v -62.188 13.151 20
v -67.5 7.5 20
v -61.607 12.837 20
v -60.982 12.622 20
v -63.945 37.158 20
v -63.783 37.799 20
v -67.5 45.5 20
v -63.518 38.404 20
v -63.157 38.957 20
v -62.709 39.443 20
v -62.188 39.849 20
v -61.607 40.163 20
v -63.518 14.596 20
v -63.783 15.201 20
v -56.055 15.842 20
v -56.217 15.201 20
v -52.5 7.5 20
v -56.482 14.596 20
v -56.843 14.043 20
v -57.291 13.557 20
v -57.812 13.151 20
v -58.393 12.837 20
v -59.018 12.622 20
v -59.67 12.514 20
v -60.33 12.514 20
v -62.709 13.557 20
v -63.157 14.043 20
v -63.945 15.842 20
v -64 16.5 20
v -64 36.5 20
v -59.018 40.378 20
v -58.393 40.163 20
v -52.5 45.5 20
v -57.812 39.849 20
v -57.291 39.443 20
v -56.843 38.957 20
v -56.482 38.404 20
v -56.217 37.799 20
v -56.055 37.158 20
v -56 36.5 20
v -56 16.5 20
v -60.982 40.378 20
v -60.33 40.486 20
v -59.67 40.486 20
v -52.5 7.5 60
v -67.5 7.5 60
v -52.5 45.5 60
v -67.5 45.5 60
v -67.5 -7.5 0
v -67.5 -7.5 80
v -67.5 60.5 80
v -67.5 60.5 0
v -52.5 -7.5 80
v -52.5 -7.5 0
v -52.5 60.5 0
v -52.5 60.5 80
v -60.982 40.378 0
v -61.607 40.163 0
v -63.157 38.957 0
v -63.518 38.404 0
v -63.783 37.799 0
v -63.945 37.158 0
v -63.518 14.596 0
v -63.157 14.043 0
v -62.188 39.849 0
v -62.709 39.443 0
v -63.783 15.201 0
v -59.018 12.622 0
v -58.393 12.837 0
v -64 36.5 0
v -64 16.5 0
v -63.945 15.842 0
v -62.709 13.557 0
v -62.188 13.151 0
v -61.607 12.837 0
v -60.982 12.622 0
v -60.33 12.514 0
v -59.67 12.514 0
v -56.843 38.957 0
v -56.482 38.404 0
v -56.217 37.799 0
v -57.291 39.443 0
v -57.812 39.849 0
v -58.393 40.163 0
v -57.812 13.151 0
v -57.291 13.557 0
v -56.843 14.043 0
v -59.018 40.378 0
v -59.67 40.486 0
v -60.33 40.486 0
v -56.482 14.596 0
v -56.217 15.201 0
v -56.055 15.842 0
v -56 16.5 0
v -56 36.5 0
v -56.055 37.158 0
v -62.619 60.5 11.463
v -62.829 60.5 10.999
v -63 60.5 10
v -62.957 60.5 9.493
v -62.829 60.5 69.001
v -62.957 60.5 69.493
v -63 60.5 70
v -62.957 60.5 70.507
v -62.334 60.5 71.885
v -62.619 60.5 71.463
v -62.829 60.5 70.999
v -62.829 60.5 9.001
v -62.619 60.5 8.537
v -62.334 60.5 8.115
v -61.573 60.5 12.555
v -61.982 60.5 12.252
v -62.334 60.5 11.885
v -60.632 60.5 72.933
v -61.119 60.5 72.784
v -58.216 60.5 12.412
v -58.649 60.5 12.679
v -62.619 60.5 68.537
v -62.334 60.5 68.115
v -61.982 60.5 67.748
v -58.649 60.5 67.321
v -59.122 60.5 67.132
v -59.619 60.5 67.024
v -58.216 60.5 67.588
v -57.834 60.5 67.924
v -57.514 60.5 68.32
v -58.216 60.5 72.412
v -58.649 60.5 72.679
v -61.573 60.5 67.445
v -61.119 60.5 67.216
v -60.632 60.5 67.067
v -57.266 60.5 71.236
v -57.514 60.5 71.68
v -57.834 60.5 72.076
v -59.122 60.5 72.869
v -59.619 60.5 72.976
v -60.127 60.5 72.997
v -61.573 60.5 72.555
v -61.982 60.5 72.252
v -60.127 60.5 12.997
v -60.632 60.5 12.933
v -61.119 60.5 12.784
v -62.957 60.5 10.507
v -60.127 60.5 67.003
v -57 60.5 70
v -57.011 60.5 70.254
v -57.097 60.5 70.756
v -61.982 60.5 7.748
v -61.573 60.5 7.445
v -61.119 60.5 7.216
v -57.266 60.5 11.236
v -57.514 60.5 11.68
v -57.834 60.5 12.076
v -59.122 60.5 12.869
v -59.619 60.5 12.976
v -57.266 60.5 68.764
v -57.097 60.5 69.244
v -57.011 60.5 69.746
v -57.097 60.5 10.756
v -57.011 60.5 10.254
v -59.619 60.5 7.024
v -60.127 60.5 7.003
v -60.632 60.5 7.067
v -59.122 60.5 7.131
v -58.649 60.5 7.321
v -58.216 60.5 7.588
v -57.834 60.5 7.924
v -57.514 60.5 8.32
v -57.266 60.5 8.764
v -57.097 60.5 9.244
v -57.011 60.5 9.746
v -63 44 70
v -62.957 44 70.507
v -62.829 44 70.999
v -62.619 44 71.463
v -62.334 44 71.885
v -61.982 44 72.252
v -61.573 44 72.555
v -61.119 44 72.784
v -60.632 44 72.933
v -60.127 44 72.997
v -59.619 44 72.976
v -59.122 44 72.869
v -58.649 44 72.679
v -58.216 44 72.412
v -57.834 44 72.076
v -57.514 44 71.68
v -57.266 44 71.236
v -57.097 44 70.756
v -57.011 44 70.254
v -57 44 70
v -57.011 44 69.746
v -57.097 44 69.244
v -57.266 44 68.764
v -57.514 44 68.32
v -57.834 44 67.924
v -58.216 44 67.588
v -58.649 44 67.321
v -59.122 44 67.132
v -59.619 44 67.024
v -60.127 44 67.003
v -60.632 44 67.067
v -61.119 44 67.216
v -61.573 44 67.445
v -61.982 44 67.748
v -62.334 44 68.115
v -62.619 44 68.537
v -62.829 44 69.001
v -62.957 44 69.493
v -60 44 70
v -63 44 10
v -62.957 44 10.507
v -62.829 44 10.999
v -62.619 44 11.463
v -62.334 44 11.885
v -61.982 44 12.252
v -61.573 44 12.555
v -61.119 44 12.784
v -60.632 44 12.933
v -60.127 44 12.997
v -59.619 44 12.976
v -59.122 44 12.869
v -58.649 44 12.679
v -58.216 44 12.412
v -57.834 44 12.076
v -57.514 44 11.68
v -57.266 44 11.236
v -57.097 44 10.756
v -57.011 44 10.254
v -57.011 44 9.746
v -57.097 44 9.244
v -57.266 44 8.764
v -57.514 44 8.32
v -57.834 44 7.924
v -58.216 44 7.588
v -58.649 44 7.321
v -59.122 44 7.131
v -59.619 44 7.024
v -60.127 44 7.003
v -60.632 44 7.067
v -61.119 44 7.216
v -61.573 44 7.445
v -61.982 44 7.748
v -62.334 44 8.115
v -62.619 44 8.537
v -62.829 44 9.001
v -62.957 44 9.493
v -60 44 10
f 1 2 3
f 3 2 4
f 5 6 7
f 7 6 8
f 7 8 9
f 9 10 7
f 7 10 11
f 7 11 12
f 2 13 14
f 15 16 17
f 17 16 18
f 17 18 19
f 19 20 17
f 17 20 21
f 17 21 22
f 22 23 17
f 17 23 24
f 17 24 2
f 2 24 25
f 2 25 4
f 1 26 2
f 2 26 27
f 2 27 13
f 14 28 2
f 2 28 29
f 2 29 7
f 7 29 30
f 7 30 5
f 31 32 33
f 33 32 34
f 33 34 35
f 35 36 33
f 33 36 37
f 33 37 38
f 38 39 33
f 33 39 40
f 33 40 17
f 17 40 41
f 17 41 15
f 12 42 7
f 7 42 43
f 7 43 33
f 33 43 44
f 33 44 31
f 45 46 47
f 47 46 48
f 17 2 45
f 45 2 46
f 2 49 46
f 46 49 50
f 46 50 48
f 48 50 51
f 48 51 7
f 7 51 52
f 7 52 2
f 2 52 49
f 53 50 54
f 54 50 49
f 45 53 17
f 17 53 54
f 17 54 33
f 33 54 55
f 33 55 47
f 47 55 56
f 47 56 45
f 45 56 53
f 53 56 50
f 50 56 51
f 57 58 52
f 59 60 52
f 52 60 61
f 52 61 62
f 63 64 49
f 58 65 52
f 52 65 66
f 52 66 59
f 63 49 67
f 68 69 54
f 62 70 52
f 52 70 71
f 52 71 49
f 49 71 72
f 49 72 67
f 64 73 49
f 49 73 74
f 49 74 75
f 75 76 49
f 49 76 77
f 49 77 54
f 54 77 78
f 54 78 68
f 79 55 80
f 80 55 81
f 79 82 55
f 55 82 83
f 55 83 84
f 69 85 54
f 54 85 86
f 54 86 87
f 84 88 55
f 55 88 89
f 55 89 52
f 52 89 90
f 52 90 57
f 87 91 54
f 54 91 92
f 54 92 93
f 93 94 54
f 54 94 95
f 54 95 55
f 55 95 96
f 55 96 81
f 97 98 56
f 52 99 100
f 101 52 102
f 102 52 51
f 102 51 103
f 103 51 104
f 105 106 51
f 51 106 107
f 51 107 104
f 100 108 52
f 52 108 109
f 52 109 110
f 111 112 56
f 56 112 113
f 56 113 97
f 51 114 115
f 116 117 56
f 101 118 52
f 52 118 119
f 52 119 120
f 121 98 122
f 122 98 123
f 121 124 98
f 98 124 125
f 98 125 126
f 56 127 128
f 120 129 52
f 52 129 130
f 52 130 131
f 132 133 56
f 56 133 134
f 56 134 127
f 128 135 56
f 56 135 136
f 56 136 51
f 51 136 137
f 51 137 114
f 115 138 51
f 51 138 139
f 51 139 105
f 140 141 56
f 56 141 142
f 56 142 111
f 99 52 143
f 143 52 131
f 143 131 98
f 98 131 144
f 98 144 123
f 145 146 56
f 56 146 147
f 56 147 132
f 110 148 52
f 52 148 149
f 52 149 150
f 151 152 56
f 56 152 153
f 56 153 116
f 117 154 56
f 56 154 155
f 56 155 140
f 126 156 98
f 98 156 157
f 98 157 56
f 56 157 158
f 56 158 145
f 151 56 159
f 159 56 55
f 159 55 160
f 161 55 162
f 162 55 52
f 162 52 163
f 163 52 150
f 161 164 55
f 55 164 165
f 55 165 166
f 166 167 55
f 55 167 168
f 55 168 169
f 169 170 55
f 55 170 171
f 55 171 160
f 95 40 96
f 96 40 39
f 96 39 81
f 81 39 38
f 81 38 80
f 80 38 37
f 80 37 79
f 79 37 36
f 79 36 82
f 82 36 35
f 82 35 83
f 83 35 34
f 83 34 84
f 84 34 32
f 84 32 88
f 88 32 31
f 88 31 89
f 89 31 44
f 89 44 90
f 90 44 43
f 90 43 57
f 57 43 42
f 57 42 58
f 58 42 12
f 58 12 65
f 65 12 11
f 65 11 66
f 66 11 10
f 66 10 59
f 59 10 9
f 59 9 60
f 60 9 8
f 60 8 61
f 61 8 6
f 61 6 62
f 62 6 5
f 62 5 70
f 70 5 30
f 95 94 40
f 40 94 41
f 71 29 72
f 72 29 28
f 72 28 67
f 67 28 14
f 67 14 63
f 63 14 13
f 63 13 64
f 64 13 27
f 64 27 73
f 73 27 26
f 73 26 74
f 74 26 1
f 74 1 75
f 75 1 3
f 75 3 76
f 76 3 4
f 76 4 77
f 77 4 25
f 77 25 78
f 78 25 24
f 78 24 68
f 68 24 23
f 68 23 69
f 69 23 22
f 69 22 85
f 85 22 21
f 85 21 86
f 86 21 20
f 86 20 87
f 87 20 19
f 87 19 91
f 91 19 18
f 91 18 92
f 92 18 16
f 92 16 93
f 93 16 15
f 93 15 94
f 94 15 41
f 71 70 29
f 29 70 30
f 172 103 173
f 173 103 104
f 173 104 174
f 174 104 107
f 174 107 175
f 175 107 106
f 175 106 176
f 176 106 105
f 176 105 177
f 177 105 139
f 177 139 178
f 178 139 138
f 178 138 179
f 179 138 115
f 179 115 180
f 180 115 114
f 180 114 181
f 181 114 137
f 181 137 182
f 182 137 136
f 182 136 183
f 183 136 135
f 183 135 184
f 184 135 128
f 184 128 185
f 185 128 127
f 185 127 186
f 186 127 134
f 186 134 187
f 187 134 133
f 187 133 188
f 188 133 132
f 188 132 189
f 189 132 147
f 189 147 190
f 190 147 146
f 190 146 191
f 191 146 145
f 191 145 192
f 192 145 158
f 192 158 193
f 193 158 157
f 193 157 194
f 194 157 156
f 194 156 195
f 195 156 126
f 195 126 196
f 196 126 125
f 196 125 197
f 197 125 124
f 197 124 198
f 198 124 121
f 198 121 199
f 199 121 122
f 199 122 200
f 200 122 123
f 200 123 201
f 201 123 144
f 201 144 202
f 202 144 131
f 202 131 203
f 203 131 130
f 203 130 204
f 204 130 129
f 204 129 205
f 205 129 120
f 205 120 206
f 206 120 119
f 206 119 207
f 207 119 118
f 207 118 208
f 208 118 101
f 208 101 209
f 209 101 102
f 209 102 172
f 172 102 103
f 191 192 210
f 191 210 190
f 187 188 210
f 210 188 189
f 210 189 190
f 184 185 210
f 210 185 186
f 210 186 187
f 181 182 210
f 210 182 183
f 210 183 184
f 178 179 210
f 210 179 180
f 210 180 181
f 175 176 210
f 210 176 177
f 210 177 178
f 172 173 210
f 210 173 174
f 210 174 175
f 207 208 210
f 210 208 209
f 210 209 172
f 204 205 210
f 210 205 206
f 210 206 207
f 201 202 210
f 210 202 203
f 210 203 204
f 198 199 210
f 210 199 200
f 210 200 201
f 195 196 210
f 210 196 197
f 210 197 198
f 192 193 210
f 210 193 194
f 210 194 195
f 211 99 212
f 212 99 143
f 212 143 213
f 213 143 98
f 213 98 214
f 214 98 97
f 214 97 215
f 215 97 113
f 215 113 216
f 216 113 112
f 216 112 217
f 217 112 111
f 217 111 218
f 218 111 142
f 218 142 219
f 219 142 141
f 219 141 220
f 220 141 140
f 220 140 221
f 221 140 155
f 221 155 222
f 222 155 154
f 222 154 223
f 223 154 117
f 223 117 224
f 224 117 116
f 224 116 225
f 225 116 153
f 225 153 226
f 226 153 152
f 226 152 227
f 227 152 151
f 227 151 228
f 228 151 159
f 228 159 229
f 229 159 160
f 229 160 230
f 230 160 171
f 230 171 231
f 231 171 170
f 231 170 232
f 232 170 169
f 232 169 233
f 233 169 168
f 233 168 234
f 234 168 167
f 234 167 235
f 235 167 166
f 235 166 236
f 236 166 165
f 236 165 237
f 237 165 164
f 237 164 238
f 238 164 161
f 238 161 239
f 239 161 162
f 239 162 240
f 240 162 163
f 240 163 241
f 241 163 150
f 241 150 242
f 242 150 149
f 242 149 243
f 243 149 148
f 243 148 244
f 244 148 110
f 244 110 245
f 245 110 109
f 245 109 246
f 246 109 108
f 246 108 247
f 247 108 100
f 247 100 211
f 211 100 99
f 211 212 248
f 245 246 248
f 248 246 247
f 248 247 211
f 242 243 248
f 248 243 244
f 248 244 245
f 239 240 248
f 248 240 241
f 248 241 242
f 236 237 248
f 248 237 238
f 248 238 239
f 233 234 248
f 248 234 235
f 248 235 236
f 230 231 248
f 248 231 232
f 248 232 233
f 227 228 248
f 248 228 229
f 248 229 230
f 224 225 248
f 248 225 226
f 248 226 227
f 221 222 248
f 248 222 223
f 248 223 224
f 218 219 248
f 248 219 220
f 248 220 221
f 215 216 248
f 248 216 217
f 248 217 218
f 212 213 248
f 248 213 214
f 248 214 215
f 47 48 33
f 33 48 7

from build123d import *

# Parameters (mm, degrees)
ESBO_O1_W                = 15
ESBO_O1_H                = 15
RESSALTO_EXTRUS_O1_DEPTH = 80
ESBO_O2_W                = 15
ESBO_O2_H                = 20
RESSALTO_EXTRUS_O2_DEPTH = 53
CORTE_EXTRUS_O1_DEPTH    = 21
ESBO_O5_R                = 3
CORTE_EXTRUS_O2_DEPTH    = 16.5
ESBO_O6_W                = 15
ESBO_O6_H                = 15
RESSALTO_EXTRUS_O3_DEPTH = 40


with BuildPart() as part:
    # Esboço1 → Ressalto-extrusão1 (new body)
    with BuildSketch(Plane.XY):
        with Locations((-60, 0)):
            Rectangle(ESBO_O1_W, ESBO_O1_H)
    extrude(amount=RESSALTO_EXTRUS_O1_DEPTH)

    # Esboço2 → Ressalto-extrusão2 (add)
    with BuildSketch(Plane(origin=(0, 7.5, 0), x_dir=(1, 0, 0), z_dir=(0, 1, 0))):
        with Locations((-60, -10)):
            Rectangle(ESBO_O2_W, ESBO_O2_H)
        with Locations((-60, -70)):
            Rectangle(ESBO_O2_W, ESBO_O2_H)
    extrude(amount=RESSALTO_EXTRUS_O2_DEPTH)

    # Esboço4 → Corte-extrusão1 (cut, through all)
    with BuildSketch(Plane.XY.offset(20)):
        with BuildLine():
            Line((-56, 36.5), (-56, 16.5))
            ThreePointArc((-56, 16.5), (-60, 12.5), (-64, 16.5))
            Line((-64, 16.5), (-64, 36.5))
            ThreePointArc((-64, 36.5), (-60, 40.5), (-56, 36.5))
        make_face()
    extrude(amount=-CORTE_EXTRUS_O1_DEPTH, mode=Mode.SUBTRACT)

    # Esboço5 → Corte-extrusão2 (cut)
    with BuildSketch(Plane(origin=(0, 60.5, 0), x_dir=(1, 0, 0), z_dir=(0, 1, 0))):
        with Locations((-60, -10)):
            Circle(ESBO_O5_R)
        with Locations((-60, -70)):
            Circle(ESBO_O5_R)
    extrude(amount=-CORTE_EXTRUS_O2_DEPTH, mode=Mode.SUBTRACT)

    # Esboço6 → Ressalto-extrusão3 (add)
    with BuildSketch(Plane.XY.offset(20)):
        with Locations((-60, 53)):
            Rectangle(ESBO_O6_W, ESBO_O6_H)
    extrude(amount=RESSALTO_EXTRUS_O3_DEPTH)


solid = part.part
